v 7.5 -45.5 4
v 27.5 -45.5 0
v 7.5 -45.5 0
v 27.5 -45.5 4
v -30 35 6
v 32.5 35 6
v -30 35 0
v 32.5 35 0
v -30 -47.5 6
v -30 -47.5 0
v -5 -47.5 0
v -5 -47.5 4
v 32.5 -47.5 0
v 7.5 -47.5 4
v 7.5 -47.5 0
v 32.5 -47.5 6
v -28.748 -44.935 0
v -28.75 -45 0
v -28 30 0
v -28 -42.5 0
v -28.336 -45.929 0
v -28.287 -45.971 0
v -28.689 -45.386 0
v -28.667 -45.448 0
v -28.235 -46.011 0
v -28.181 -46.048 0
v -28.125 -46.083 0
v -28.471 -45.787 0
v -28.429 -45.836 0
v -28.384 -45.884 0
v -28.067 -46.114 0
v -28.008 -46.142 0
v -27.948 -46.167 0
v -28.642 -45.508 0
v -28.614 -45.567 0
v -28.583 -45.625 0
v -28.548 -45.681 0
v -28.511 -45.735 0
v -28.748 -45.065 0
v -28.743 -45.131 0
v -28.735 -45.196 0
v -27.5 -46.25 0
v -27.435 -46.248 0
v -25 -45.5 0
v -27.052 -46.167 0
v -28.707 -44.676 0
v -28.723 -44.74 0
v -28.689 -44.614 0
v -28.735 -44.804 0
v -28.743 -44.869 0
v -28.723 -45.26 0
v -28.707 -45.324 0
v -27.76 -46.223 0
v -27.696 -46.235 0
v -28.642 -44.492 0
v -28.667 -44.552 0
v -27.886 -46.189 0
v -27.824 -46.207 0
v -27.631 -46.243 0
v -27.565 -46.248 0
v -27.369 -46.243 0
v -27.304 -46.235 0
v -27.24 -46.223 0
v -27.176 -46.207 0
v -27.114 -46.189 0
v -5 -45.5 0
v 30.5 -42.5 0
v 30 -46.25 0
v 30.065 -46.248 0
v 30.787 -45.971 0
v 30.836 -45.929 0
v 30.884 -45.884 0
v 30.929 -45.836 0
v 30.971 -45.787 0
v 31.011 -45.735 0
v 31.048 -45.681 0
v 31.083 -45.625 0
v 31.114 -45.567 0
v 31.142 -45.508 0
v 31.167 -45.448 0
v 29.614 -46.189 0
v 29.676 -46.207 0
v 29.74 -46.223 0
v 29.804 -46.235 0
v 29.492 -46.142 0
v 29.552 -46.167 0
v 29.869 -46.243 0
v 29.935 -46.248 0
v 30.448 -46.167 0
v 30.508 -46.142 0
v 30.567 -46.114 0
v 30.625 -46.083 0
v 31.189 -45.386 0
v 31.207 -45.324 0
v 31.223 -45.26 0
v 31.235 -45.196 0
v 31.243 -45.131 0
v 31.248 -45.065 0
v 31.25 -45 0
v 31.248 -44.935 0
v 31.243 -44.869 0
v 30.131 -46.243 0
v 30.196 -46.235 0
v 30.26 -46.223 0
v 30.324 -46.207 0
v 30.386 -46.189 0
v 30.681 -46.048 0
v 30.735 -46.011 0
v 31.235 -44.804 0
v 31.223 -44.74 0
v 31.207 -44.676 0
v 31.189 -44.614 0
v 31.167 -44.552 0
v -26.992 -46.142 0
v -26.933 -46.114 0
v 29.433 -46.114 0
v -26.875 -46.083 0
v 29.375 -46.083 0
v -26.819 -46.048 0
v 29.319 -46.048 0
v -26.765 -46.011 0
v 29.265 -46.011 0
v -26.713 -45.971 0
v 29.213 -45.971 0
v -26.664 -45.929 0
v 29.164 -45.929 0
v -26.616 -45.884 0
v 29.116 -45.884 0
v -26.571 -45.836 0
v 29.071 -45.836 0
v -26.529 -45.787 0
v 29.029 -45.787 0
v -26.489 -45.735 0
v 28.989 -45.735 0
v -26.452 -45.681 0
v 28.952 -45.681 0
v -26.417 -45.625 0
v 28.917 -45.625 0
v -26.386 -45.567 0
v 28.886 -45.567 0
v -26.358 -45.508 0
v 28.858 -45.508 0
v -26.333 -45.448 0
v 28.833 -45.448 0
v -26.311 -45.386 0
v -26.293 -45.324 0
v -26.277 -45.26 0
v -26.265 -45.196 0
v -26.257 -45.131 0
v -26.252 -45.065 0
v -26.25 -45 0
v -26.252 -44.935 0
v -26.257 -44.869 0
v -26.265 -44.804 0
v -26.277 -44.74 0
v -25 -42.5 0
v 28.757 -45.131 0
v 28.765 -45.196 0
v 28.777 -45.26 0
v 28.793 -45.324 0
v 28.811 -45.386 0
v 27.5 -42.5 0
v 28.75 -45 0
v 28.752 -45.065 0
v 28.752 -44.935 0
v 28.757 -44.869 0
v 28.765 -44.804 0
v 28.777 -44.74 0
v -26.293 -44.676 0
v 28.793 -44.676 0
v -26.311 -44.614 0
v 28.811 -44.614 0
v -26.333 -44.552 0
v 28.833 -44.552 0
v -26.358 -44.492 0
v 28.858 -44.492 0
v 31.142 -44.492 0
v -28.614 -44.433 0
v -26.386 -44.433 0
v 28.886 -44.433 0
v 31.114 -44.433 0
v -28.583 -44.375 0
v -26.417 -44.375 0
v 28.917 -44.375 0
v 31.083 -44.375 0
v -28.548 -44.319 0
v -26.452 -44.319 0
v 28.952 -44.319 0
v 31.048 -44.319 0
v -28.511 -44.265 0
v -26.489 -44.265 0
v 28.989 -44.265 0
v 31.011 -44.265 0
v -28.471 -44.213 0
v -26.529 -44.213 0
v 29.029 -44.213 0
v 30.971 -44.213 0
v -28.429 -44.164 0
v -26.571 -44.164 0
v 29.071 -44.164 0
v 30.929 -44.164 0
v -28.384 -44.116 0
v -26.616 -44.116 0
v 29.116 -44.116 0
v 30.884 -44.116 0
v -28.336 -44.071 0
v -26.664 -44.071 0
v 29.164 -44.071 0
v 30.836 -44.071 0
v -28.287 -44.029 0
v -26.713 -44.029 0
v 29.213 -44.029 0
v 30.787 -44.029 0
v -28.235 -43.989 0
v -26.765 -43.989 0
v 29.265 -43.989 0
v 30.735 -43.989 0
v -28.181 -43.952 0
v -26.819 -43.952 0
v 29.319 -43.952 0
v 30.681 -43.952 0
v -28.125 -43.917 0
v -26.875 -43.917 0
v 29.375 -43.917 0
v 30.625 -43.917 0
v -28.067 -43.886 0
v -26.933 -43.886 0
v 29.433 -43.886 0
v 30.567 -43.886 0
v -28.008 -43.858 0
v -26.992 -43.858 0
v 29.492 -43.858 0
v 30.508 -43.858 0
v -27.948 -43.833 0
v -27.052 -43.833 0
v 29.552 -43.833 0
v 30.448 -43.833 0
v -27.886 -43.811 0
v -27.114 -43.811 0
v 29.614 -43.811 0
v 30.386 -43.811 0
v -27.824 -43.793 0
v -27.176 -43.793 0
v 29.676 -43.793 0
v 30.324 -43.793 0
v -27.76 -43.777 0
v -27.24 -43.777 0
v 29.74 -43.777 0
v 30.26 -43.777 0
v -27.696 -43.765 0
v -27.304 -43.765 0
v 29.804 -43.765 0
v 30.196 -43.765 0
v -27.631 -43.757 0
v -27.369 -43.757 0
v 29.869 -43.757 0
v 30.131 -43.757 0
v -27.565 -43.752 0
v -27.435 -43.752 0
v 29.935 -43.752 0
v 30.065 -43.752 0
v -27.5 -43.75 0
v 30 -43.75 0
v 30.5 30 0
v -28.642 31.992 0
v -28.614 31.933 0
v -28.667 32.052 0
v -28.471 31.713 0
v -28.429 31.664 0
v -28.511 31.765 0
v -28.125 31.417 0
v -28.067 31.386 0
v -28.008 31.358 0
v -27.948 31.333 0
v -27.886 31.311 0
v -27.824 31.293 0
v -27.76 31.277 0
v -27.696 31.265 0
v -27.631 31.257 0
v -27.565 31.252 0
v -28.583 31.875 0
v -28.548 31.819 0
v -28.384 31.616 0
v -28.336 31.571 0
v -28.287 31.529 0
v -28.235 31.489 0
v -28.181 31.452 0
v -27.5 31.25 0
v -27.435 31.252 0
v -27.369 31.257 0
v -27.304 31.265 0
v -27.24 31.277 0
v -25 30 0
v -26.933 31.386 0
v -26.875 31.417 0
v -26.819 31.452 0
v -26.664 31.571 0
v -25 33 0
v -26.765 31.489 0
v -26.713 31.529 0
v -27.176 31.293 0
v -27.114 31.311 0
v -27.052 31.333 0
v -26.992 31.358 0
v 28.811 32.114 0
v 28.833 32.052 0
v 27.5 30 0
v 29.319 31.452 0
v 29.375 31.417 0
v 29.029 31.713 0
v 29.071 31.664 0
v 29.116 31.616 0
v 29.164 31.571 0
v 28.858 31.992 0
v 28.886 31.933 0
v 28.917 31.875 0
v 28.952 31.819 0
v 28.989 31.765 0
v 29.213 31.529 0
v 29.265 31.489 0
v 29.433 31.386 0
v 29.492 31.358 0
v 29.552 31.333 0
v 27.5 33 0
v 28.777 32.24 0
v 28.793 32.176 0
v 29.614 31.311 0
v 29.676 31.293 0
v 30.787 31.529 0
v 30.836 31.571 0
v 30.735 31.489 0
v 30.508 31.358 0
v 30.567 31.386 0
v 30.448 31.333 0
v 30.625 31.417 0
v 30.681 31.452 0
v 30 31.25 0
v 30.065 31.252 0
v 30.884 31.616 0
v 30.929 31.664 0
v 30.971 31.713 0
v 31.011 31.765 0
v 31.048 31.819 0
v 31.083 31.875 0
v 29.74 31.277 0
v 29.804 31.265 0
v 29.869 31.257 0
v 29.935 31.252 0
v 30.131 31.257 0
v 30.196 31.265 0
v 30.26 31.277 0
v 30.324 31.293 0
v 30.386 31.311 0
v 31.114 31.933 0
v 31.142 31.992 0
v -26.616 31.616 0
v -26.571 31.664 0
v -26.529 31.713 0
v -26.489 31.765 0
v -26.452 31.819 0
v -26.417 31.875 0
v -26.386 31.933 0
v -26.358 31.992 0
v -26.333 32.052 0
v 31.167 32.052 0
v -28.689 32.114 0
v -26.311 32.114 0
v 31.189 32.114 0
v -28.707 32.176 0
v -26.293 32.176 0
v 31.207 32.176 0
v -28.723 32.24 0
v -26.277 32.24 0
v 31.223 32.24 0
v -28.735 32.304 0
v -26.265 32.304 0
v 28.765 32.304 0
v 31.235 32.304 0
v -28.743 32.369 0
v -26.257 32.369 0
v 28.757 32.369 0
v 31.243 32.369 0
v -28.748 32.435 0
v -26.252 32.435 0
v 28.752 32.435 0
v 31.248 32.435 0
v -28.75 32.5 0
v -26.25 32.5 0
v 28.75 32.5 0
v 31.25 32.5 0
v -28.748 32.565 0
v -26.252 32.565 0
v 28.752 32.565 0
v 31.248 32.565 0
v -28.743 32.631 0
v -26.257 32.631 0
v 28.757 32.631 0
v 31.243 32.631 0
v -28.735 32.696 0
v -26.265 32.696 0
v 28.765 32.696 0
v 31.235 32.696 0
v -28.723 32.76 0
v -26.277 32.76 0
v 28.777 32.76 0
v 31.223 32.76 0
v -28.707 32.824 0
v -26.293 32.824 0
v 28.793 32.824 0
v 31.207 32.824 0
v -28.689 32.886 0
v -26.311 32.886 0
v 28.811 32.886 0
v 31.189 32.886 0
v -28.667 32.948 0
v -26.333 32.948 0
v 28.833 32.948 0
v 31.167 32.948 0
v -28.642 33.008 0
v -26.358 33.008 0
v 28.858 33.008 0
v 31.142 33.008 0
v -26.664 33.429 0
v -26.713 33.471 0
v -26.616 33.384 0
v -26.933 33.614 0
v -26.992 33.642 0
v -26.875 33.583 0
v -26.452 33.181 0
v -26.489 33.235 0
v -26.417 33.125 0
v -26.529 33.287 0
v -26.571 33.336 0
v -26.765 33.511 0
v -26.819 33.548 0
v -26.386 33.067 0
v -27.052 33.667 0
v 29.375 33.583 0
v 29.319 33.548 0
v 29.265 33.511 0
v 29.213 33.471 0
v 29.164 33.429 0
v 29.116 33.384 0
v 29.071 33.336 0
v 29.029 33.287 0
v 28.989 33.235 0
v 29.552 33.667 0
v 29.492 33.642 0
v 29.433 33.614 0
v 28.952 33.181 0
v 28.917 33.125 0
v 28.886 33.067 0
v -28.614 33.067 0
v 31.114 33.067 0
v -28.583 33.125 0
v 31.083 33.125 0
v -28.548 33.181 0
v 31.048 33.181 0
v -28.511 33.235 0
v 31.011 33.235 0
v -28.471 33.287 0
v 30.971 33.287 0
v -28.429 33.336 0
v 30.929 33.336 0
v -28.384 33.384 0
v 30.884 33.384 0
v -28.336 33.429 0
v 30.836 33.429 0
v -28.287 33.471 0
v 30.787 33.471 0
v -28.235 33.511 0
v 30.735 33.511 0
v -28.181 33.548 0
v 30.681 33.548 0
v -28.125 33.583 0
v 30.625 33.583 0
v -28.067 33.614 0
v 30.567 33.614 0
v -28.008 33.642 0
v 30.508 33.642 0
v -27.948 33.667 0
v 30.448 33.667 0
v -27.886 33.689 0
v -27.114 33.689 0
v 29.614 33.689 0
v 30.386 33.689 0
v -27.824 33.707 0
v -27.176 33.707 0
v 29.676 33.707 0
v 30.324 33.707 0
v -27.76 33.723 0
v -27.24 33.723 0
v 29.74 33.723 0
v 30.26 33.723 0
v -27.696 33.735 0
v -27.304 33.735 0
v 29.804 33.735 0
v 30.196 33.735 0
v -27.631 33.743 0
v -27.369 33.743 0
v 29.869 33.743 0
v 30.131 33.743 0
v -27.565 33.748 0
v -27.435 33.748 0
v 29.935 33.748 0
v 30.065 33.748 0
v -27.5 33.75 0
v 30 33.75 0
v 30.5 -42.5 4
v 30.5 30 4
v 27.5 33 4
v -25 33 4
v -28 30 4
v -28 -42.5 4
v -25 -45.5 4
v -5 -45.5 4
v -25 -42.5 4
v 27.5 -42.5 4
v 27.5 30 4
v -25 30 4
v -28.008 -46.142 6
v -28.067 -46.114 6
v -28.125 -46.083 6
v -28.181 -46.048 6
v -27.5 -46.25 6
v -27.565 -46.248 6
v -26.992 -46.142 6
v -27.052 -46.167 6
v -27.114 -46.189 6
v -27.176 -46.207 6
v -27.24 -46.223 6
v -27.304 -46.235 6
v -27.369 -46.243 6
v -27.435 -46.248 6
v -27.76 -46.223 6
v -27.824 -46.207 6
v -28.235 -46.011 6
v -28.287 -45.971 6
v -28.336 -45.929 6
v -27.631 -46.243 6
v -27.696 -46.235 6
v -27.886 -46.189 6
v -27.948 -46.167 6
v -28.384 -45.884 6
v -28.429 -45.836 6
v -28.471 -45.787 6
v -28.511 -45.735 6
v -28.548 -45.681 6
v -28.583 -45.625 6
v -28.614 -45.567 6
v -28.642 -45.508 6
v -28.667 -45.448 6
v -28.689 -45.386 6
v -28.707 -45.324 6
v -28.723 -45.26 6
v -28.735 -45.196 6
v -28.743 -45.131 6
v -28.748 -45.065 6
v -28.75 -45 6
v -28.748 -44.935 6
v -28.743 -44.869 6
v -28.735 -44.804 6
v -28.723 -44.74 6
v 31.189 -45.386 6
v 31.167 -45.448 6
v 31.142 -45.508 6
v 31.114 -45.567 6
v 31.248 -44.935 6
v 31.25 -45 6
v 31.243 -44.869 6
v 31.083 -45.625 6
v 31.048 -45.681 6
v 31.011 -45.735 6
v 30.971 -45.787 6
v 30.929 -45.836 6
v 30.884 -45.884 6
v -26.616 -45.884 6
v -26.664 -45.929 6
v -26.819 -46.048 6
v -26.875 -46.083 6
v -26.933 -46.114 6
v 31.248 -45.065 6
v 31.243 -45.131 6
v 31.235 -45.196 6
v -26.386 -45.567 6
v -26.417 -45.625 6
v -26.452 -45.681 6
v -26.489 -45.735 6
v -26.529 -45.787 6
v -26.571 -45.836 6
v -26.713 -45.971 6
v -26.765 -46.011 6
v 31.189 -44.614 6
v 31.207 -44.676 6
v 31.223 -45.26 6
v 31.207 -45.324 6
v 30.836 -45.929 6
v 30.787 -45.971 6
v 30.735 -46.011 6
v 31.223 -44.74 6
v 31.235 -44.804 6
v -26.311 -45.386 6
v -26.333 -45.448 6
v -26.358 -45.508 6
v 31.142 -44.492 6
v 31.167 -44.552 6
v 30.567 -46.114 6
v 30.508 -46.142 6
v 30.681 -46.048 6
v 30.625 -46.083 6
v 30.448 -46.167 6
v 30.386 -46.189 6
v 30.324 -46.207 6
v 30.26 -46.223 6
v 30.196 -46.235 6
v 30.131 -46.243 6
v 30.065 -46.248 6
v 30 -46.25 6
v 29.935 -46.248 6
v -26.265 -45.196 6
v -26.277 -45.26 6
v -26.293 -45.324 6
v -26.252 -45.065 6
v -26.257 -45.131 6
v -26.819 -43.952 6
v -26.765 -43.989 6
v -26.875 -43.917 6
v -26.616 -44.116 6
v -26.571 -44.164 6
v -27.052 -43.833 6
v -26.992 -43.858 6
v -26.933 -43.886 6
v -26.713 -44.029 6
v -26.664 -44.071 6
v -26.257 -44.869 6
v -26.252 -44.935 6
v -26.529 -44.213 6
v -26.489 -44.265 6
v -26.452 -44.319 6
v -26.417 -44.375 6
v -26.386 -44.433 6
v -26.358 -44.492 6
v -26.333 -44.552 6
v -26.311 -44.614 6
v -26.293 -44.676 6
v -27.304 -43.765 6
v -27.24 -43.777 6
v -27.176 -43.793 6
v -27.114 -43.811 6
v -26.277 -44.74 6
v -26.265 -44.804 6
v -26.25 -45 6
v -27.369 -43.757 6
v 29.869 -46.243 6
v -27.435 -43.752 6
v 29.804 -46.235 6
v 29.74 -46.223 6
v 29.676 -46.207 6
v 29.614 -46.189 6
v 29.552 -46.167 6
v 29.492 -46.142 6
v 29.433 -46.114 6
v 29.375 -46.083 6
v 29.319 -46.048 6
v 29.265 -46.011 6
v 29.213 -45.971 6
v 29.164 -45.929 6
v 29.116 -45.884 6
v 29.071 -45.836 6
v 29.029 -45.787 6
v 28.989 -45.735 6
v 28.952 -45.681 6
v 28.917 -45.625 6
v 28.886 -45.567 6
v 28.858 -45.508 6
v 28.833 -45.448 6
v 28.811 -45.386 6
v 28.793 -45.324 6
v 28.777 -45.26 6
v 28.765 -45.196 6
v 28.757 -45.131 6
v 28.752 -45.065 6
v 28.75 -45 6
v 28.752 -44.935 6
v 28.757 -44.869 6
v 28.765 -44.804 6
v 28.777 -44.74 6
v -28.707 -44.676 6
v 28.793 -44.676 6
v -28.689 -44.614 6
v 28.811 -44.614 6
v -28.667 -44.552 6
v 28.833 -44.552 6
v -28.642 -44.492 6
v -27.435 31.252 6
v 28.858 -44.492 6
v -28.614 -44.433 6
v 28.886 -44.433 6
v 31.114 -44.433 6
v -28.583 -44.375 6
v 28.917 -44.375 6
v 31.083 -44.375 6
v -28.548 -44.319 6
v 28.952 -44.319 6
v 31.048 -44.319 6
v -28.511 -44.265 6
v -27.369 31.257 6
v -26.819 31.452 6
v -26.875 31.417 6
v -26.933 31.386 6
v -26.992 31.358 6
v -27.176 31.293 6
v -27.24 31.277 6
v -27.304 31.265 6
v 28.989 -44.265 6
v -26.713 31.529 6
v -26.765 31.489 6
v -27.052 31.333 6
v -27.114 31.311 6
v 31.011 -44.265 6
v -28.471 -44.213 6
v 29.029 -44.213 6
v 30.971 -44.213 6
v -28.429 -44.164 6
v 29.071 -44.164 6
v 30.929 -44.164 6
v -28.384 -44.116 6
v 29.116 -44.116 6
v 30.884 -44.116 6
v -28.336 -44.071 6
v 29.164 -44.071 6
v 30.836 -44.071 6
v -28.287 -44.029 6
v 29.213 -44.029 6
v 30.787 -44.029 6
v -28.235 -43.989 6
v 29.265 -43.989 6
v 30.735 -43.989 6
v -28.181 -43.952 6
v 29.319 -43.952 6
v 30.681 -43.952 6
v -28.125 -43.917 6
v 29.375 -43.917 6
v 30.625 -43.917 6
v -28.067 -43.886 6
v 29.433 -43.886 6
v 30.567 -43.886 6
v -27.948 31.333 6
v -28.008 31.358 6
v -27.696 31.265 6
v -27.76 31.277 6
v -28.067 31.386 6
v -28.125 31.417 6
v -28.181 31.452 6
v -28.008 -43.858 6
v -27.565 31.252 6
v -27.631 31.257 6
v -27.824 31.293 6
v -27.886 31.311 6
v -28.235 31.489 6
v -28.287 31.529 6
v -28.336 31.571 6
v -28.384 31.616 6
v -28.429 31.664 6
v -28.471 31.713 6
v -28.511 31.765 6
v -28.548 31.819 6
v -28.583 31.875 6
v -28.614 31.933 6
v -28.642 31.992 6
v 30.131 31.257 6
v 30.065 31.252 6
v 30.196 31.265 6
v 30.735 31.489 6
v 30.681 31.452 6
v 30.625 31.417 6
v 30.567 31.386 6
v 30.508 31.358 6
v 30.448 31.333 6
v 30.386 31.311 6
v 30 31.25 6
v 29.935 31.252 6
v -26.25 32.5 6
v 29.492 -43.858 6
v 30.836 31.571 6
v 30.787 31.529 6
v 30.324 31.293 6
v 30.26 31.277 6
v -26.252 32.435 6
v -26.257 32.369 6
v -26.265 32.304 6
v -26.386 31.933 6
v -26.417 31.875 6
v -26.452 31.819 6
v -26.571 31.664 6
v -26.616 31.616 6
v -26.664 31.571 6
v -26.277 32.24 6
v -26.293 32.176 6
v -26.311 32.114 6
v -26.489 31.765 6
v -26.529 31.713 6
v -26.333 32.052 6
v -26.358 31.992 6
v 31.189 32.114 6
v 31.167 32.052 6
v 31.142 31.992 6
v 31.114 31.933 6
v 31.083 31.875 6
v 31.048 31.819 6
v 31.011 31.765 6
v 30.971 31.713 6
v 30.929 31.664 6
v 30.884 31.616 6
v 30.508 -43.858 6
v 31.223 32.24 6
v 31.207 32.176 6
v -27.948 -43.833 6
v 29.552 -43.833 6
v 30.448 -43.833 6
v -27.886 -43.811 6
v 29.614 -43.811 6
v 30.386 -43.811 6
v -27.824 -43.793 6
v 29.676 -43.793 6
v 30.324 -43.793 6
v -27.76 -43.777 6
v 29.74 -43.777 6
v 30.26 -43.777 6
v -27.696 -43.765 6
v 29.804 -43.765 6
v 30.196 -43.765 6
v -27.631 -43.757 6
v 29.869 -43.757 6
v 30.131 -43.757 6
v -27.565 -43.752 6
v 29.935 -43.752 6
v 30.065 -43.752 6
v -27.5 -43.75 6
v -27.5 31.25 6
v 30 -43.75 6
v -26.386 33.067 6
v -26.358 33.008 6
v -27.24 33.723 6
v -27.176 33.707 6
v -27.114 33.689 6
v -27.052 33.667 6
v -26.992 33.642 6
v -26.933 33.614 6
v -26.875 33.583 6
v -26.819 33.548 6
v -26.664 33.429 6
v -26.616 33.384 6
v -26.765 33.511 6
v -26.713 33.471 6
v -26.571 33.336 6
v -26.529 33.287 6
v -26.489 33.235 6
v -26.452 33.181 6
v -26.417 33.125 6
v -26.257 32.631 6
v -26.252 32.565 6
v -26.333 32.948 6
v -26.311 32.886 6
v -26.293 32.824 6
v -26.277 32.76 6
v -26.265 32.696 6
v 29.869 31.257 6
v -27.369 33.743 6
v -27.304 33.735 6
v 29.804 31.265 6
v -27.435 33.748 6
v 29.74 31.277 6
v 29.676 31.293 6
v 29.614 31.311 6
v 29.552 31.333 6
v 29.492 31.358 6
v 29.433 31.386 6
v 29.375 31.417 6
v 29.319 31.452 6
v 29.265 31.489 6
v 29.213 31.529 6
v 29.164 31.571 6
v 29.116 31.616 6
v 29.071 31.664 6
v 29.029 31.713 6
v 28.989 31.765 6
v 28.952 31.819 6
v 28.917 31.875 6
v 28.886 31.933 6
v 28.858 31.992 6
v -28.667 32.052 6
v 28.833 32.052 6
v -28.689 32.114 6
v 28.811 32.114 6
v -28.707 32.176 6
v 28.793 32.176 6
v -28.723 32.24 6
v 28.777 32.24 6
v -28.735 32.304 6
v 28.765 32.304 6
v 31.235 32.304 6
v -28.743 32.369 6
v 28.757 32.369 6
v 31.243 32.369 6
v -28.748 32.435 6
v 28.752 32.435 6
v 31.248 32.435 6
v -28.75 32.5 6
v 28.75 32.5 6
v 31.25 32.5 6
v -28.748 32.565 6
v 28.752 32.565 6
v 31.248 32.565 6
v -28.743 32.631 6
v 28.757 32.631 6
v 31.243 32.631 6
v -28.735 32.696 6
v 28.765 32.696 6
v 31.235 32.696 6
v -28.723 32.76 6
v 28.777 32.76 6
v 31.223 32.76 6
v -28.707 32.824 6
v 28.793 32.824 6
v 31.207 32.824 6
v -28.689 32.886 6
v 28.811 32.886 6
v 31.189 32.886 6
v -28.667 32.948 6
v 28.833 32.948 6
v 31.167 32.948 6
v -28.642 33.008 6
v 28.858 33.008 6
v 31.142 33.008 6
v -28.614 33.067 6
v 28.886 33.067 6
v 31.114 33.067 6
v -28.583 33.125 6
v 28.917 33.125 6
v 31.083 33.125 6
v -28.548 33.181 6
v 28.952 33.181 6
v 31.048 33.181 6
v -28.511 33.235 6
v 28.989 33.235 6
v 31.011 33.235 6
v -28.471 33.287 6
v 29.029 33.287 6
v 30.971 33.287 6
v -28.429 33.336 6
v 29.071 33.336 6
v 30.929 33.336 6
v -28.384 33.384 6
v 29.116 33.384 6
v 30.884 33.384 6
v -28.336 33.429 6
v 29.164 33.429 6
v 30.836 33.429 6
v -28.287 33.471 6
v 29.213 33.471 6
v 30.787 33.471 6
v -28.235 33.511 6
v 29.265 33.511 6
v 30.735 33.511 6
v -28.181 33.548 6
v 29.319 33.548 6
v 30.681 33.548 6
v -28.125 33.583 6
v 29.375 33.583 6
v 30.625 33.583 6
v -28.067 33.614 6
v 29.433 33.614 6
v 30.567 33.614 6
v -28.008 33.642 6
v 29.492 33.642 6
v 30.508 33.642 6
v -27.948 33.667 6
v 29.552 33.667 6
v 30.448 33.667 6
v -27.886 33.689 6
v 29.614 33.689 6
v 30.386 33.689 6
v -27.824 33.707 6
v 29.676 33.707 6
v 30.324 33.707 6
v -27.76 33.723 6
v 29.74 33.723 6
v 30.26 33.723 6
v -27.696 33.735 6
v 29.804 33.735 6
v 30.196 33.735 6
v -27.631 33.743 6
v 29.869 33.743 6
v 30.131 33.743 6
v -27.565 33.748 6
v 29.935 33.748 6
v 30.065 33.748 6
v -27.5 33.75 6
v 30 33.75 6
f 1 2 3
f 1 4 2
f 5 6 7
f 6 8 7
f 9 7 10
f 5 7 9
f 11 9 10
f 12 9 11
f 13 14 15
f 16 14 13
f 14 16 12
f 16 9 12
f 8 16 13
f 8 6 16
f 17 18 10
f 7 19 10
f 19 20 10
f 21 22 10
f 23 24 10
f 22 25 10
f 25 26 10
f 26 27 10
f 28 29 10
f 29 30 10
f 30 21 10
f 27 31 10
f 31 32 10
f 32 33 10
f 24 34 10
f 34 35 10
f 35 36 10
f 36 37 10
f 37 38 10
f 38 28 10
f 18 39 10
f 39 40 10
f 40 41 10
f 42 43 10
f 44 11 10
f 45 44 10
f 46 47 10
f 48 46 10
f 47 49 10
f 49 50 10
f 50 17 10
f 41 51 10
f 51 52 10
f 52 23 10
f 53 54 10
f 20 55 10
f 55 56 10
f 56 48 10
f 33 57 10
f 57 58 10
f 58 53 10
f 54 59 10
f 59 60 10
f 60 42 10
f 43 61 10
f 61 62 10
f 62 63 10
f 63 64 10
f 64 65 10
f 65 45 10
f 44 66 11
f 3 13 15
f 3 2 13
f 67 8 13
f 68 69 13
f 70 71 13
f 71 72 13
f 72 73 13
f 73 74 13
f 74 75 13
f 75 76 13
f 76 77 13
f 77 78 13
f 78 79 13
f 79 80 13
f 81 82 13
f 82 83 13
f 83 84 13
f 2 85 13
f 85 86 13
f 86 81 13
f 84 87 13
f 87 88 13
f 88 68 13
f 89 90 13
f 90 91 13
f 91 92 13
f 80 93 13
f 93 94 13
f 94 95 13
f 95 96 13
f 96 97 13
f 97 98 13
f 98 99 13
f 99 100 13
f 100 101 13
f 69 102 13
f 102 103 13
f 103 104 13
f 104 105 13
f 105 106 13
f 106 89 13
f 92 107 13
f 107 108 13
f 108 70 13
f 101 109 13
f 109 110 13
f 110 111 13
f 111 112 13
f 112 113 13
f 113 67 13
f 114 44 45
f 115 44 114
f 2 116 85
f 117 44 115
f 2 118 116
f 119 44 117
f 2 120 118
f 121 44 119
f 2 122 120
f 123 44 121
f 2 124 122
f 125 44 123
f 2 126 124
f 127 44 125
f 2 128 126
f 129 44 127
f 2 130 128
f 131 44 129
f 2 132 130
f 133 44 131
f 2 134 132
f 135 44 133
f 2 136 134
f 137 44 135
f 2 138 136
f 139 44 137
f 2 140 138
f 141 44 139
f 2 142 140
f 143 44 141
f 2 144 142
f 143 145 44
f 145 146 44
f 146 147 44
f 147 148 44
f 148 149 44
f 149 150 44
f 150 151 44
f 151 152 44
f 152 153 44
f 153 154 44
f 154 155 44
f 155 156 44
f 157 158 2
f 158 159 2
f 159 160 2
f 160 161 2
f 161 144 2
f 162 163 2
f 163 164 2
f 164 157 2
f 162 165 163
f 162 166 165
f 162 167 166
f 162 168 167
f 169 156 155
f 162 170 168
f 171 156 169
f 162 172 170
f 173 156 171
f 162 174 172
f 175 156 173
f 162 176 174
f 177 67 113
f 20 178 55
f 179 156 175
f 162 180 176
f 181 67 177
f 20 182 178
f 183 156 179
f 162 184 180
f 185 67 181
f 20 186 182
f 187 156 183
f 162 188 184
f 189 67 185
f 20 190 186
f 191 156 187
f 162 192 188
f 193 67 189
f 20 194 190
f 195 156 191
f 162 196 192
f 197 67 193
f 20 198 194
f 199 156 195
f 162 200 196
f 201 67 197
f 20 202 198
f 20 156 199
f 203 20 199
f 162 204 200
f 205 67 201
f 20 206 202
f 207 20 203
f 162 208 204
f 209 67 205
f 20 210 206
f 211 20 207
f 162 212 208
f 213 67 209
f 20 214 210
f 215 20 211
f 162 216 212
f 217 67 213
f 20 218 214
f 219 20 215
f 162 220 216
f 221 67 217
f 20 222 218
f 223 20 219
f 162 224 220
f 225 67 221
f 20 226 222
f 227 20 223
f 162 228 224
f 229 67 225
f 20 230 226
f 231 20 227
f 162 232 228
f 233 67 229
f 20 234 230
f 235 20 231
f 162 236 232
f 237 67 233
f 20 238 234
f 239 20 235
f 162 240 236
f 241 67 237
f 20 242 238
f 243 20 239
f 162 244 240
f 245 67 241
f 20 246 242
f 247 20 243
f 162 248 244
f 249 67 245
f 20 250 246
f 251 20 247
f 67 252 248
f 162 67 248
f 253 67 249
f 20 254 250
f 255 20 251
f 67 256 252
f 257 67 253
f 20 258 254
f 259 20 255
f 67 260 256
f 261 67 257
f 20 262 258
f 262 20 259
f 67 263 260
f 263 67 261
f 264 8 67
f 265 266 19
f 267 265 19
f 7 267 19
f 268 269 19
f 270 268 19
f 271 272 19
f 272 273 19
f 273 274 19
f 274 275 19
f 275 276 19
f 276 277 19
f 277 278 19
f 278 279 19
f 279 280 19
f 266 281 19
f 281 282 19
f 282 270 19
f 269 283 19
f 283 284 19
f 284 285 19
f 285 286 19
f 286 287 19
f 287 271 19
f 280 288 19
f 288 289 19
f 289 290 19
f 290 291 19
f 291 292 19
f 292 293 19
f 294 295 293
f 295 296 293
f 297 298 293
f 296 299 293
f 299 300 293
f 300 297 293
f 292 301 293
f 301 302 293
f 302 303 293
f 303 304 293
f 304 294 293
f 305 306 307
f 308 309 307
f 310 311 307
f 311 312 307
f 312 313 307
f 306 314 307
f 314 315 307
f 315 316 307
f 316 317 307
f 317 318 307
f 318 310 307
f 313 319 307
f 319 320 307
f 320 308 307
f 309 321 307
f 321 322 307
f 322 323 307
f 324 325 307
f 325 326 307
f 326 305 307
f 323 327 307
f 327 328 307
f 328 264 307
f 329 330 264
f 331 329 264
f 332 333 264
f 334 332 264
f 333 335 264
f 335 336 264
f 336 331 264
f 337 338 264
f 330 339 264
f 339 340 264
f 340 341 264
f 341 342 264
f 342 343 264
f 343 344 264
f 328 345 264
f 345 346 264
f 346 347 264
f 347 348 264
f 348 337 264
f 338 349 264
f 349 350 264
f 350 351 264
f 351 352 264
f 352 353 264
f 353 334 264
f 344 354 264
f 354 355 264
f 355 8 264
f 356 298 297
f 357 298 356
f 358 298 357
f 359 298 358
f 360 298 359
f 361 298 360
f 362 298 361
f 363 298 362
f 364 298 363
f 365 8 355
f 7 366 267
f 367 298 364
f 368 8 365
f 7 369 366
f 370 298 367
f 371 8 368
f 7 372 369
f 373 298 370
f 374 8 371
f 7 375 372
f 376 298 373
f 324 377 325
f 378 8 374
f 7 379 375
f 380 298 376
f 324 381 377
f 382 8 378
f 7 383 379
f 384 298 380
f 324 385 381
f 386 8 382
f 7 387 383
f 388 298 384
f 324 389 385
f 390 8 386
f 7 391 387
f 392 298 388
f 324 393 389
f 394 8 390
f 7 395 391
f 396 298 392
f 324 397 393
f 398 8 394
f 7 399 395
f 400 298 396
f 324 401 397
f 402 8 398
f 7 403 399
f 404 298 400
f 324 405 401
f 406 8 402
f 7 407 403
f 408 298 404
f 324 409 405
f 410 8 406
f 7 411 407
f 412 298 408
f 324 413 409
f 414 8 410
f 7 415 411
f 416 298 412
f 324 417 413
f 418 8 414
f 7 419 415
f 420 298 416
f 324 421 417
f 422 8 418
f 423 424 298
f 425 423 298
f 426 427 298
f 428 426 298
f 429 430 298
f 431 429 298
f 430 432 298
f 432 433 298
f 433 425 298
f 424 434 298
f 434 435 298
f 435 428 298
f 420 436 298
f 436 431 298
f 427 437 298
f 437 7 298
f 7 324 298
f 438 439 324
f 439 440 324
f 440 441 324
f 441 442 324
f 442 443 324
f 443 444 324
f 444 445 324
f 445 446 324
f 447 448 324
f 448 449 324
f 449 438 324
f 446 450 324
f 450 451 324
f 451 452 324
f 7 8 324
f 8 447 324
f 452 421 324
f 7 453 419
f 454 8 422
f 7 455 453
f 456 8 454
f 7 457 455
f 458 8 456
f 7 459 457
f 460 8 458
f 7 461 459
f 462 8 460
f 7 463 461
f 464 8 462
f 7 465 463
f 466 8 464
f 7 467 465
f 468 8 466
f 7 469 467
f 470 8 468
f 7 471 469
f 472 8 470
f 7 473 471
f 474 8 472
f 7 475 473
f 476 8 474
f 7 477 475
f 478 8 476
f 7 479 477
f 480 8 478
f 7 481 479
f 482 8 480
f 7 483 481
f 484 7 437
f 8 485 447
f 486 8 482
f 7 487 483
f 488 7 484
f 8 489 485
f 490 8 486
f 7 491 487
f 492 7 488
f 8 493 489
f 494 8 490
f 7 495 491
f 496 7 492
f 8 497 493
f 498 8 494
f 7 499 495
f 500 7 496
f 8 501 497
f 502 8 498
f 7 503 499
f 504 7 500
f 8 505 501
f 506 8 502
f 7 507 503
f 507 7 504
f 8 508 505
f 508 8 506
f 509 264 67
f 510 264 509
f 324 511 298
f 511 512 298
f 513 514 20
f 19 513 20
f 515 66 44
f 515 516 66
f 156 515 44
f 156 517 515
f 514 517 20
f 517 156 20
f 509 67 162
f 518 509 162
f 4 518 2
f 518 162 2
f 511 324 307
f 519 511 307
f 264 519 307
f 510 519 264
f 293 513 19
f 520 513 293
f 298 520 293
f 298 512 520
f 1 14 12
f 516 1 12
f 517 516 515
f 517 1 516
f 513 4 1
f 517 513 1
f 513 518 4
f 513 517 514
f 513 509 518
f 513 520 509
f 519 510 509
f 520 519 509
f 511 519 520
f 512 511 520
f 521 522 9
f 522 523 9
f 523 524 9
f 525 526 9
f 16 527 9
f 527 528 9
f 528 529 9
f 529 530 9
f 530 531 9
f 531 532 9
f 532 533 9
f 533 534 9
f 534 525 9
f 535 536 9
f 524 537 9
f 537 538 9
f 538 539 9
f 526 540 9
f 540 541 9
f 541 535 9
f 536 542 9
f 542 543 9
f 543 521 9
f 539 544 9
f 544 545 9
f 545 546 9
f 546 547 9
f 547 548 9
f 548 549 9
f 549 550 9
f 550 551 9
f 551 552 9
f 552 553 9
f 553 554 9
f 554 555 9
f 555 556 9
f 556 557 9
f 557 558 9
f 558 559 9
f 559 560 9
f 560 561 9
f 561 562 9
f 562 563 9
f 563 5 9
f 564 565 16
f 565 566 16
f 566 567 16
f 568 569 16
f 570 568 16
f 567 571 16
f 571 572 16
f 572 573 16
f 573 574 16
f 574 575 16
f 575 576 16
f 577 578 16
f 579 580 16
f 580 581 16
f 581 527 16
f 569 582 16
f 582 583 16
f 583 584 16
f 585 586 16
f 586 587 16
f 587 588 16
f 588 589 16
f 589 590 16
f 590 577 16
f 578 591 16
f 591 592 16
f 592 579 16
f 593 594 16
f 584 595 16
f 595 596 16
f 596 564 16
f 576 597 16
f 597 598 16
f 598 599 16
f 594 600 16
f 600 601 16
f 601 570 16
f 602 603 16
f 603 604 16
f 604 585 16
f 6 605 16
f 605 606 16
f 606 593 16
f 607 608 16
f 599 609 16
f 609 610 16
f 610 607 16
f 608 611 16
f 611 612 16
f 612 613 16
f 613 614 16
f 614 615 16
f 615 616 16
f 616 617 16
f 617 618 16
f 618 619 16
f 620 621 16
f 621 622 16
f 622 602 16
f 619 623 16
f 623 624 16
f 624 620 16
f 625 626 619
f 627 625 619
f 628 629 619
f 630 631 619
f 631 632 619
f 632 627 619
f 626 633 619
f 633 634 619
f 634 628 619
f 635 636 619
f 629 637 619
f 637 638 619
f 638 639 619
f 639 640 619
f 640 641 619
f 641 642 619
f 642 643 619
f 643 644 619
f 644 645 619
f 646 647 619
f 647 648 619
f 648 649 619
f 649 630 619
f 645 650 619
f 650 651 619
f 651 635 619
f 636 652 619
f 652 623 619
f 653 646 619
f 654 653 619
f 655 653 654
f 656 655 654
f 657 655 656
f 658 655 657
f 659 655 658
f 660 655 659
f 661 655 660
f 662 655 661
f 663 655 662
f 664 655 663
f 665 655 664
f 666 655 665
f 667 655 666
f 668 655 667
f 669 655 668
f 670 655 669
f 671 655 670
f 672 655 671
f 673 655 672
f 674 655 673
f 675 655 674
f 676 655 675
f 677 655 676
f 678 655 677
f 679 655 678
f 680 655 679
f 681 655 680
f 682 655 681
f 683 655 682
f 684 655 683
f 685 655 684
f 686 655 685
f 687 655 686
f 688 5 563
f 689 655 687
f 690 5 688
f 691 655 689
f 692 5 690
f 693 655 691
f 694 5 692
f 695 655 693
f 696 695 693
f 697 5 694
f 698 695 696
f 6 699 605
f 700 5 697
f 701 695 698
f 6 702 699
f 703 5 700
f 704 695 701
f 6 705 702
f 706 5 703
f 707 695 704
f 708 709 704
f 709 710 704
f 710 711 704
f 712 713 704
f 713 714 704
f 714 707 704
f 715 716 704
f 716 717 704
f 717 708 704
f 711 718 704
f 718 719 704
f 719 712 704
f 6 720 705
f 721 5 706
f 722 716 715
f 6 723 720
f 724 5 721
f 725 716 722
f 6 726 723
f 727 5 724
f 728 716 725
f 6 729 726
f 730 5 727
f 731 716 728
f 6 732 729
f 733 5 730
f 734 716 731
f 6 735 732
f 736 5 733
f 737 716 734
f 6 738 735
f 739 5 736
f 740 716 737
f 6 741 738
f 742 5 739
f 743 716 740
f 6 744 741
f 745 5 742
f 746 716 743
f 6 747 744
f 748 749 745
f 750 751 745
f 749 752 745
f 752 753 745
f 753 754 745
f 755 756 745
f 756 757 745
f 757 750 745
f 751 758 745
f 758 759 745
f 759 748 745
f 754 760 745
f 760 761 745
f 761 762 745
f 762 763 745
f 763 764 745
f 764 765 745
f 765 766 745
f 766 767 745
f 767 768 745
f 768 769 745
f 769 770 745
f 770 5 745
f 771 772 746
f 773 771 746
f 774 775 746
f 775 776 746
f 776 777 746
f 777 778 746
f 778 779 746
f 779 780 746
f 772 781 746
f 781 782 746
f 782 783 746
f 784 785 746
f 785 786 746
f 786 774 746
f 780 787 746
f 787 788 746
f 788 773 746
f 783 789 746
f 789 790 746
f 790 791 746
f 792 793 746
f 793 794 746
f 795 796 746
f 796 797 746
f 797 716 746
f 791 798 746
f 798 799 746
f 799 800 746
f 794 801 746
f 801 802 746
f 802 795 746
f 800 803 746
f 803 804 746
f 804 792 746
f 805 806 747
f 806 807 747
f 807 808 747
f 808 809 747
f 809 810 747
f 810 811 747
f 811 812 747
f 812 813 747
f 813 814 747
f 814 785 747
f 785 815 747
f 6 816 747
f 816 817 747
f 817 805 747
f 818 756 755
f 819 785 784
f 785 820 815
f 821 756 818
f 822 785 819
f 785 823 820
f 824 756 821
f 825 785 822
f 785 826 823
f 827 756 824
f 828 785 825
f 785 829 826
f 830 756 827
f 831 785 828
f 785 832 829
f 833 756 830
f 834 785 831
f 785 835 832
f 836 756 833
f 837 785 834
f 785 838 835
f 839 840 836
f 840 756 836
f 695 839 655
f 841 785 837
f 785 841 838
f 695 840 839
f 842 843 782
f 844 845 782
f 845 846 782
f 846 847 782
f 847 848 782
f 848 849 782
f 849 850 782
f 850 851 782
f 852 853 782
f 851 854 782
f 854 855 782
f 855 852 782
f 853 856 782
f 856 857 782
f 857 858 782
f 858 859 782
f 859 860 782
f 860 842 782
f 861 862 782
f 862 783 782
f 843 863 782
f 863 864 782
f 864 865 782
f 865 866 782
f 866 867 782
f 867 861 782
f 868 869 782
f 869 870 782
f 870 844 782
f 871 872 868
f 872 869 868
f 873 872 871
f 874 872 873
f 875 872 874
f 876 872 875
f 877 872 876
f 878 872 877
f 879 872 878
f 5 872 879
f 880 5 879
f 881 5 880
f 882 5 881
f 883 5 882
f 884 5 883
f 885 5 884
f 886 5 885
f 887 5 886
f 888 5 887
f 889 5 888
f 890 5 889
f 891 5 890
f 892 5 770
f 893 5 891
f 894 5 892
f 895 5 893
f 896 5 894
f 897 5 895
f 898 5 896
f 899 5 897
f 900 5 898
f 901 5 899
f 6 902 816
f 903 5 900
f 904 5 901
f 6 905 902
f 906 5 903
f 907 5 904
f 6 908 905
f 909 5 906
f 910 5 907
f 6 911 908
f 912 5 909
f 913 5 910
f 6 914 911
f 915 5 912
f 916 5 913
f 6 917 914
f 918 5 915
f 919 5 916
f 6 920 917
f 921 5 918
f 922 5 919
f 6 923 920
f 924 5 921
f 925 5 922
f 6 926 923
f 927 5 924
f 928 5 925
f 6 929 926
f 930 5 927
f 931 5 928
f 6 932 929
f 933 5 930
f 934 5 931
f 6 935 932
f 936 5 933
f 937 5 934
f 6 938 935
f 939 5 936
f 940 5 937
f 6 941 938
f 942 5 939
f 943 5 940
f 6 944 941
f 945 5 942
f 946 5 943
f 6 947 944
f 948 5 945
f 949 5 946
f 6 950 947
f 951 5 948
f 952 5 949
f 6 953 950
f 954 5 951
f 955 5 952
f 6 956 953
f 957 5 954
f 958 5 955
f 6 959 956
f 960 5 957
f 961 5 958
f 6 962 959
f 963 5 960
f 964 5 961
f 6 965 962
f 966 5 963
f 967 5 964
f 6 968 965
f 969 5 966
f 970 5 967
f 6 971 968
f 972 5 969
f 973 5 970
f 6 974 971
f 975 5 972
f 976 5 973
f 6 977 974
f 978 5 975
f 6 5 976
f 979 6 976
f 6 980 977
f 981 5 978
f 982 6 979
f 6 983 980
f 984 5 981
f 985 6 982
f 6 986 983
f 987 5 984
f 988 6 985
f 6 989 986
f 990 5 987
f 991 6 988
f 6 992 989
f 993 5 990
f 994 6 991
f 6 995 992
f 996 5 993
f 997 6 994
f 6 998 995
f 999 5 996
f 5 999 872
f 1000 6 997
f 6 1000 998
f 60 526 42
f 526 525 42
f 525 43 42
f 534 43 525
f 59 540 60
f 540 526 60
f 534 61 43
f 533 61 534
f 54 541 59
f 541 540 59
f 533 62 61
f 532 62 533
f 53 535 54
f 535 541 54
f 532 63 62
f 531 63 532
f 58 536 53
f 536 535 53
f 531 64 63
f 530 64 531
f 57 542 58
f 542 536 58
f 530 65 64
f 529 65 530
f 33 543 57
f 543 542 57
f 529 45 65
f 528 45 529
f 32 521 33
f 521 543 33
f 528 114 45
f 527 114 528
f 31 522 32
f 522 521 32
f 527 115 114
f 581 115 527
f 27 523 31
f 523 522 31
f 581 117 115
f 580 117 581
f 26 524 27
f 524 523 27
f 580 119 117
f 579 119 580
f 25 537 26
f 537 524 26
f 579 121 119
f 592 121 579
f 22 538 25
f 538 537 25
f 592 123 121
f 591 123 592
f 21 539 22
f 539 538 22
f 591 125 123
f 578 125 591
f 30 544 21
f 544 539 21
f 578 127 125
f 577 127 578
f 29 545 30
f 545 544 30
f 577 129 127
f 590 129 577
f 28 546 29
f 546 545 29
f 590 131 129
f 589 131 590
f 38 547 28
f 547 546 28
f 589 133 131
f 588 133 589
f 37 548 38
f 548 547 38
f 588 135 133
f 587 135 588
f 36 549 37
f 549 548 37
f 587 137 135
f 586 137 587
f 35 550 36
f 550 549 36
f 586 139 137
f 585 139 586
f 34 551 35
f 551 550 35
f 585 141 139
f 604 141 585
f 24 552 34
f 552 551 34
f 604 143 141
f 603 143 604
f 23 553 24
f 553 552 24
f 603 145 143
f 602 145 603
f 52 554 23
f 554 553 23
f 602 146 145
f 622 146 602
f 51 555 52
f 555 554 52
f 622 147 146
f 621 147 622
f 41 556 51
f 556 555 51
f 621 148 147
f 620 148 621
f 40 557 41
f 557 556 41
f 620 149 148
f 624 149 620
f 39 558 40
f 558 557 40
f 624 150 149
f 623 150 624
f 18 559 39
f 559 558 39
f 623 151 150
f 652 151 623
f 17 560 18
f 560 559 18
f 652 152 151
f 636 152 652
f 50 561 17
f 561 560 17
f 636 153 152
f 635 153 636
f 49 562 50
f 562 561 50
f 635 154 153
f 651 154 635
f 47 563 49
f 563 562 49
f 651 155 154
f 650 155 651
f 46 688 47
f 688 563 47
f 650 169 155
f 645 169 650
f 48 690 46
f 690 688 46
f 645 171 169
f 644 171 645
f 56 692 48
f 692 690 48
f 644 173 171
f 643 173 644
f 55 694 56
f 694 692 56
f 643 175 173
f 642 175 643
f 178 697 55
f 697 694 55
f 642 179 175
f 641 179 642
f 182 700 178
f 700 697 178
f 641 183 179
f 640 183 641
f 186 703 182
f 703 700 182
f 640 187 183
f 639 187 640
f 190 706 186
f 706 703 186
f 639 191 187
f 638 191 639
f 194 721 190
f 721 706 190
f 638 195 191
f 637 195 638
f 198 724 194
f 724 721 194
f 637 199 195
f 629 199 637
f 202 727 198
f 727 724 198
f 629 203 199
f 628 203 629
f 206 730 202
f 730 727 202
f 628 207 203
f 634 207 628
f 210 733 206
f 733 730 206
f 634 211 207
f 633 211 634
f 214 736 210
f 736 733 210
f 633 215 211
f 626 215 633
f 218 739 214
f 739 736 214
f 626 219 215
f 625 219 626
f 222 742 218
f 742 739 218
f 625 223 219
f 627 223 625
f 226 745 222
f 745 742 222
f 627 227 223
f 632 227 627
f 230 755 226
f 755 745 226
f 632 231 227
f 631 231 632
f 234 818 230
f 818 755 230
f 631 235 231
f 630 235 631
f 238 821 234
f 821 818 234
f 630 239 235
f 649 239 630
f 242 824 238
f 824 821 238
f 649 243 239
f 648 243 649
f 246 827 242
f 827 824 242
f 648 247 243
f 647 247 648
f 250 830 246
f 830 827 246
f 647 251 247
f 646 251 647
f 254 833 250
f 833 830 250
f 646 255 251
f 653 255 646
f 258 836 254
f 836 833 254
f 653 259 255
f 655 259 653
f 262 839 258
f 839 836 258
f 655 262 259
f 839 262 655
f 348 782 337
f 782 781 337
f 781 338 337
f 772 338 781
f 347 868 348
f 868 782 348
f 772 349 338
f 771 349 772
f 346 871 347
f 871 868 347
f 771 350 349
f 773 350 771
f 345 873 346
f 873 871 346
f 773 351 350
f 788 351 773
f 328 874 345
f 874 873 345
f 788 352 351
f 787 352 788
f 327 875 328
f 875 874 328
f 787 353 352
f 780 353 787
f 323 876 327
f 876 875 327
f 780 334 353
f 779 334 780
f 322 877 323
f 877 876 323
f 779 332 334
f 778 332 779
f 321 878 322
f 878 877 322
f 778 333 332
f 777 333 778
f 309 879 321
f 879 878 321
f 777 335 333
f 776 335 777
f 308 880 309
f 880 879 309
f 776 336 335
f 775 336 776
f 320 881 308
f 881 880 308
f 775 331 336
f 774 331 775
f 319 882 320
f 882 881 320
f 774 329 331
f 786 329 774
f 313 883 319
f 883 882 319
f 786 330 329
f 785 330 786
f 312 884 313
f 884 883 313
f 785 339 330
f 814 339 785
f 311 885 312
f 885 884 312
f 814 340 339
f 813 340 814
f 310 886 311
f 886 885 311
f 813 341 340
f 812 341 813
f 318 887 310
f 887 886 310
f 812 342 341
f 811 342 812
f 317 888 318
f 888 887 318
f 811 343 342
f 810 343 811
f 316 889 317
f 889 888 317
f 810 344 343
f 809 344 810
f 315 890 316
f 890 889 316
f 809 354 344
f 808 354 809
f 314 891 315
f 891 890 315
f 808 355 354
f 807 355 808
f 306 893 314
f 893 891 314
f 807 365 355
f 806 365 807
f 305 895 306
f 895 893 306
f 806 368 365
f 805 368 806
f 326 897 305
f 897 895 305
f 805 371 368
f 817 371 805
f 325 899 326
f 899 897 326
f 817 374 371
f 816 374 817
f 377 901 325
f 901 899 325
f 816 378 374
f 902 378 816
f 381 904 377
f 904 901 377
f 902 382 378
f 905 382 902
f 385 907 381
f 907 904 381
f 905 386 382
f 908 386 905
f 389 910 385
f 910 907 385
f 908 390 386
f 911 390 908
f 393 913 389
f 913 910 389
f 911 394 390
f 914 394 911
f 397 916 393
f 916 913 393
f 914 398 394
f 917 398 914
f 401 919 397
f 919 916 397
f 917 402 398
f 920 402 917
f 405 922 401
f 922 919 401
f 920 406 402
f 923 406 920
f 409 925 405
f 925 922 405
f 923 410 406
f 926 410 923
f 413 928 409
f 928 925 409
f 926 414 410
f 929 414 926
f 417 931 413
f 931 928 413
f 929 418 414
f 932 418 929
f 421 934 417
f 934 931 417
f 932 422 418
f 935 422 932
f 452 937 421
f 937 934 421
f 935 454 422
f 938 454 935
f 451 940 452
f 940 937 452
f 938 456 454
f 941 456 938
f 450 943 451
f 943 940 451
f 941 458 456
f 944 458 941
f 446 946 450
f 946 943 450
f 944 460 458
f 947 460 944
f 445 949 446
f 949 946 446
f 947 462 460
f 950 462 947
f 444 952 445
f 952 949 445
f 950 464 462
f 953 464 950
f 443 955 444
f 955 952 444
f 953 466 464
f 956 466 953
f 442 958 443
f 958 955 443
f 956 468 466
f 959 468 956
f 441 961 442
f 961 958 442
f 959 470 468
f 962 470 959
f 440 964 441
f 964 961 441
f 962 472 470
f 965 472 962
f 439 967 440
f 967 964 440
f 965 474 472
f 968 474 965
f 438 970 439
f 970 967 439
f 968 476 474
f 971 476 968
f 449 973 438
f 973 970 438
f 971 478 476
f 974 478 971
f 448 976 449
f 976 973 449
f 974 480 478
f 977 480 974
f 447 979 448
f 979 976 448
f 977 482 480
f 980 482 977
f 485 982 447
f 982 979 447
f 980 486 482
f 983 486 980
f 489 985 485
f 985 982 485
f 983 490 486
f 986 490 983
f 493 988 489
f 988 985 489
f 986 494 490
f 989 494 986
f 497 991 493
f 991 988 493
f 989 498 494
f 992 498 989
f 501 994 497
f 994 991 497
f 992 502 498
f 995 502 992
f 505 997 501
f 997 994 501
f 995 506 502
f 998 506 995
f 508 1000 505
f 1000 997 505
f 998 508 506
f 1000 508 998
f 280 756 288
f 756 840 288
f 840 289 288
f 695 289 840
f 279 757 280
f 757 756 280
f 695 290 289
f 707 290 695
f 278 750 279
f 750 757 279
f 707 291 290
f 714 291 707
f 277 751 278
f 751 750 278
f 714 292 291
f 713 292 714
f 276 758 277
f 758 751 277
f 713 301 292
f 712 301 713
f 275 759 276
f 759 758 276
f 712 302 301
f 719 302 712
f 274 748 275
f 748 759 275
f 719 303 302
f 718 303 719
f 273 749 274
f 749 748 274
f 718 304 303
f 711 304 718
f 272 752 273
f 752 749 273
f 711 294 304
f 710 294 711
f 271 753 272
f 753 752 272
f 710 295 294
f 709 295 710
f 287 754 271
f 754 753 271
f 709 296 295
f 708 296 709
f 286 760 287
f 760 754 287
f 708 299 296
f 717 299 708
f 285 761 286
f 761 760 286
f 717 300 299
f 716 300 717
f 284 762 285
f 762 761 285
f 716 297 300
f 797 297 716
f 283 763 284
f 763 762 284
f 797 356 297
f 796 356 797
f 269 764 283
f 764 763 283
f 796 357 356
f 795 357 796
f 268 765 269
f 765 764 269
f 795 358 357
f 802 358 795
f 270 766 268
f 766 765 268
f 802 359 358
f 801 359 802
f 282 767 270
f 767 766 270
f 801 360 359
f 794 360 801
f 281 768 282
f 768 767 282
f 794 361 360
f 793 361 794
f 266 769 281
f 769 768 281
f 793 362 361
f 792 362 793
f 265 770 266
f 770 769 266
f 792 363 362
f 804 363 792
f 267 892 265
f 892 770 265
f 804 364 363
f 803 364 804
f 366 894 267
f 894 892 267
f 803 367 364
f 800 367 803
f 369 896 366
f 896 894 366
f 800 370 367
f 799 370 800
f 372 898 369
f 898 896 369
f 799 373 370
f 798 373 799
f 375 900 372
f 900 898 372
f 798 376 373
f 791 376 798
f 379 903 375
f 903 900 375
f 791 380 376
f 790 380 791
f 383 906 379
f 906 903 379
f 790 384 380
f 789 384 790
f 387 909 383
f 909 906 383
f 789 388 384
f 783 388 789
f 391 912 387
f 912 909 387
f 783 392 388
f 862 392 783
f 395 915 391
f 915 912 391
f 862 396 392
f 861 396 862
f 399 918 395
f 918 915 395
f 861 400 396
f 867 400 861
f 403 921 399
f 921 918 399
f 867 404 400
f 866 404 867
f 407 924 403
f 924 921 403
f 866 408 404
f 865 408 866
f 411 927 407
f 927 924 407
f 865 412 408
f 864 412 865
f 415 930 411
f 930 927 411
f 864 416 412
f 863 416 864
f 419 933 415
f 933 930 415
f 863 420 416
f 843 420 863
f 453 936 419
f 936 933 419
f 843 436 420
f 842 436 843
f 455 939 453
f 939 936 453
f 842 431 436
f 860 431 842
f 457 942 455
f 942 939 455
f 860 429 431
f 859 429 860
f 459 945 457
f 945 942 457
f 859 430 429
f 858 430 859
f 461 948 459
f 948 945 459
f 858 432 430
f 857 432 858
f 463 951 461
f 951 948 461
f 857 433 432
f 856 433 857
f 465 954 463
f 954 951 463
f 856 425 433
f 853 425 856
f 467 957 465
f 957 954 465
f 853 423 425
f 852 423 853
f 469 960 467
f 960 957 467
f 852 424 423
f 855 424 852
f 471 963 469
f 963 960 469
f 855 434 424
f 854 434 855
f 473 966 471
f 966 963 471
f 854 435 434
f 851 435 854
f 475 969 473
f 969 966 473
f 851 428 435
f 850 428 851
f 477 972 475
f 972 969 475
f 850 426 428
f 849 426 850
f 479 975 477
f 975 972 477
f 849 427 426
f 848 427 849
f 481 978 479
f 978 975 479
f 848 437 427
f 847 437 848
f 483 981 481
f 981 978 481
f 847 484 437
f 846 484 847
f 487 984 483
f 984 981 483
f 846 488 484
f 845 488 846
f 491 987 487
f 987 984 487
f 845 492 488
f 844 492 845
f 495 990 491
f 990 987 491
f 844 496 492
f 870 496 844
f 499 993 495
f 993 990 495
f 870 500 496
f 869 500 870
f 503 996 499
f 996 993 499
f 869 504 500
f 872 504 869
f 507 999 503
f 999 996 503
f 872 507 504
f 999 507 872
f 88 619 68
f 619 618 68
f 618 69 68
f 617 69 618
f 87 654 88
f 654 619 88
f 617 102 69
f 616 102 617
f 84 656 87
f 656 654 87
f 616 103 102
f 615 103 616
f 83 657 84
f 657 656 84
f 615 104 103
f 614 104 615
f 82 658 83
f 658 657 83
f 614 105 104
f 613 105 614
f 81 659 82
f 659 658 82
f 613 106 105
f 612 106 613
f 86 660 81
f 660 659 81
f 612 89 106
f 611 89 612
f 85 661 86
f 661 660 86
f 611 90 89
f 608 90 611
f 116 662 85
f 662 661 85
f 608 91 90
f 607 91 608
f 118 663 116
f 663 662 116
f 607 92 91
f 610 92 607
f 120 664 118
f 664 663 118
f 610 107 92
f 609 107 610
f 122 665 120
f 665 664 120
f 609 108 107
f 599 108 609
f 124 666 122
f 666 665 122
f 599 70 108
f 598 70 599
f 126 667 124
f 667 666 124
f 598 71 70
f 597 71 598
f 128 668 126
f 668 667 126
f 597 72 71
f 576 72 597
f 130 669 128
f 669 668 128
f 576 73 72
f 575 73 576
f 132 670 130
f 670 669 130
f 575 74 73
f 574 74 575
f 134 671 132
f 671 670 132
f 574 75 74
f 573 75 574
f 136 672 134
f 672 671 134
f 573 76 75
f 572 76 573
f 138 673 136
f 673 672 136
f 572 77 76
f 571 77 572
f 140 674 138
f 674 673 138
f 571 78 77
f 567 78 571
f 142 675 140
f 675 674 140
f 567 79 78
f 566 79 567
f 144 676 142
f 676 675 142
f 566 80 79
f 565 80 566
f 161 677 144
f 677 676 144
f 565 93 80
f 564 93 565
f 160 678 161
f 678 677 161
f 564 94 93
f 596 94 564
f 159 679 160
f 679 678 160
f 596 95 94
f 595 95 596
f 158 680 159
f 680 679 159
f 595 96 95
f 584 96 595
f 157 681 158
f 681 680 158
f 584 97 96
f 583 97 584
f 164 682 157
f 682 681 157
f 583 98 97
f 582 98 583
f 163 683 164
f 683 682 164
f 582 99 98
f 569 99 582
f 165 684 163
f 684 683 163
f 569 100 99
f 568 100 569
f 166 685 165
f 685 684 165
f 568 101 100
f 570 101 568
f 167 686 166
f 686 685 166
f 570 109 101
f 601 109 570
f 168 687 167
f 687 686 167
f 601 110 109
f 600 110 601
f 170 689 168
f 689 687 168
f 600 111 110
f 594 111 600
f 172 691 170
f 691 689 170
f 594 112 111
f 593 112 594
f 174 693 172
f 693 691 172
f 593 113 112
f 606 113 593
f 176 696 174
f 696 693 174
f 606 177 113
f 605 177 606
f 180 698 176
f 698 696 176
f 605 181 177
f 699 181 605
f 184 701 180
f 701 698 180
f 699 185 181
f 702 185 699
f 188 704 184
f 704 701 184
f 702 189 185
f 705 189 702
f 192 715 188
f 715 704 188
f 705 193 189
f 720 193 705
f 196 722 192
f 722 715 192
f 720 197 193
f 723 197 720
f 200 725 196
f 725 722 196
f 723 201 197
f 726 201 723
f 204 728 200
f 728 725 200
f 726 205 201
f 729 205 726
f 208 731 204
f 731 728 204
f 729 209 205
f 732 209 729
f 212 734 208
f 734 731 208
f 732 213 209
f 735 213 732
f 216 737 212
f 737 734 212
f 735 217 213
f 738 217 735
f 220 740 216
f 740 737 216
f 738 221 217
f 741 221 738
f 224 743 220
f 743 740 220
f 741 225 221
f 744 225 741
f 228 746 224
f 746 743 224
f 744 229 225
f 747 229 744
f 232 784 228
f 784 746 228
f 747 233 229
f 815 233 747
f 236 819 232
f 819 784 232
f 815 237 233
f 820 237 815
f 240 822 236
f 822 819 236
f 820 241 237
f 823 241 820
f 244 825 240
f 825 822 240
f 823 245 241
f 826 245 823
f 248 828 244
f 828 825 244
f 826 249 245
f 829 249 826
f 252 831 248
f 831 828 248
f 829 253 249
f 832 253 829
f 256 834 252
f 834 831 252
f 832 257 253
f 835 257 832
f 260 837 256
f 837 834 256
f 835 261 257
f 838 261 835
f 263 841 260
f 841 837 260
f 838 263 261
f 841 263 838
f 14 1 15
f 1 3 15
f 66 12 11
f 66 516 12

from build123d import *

# Parameters (mm, degrees)
SKIZZE1_W                       = 62.5
SKIZZE1_H                       = 82.5
AUFSATZ_LINEAR_AUSTRAGEN1_DEPTH = 4
AUFSATZ_LINEAR_START            = -4
SKIZZE2_W                       = 5
SKIZZE2_H                       = 5
SKIZZE2_R                       = 1.25
AUFSATZ_LINEAR_AUSTRAGEN2_DEPTH = 4
SKIZZE3_W                       = 62.5
SKIZZE3_H                       = 82.5
AUFSATZ_LINEAR_AUSTRAGEN3_DEPTH = 2
SKIZZE2_2_R                     = 1.25
SCHNITT_LINEAR_AUSTRAGEN1_DEPTH = 5
SCHNITT_LINEAR_START            = -2
SKIZZE4_R                       = 1.25
SCHNITT_LINEAR_AUSTRAGEN2_DEPTH = 2
SKIZZE5_W                       = 12.5
SKIZZE5_H                       = 2
SCHNITT_LINEAR_AUSTRAGEN3_DEPTH = 4


with BuildPart() as part:
    # Skizze1 → Aufsatz-Linear austragen1 (new body)
    with BuildSketch(Plane.XY):
        with Locations((1.25, -6.25)):
            Rectangle(SKIZZE1_W, SKIZZE1_H)
        with BuildLine():
            ThreePointArc((-28, 31.354356), (-26.616117, 31.616117), (-26.354356, 33))
            Line((-26.354356, 33), (28.854356, 33))
            ThreePointArc((28.854356, 33), (29.116117, 31.616117), (30.5, 31.354356))
            Line((30.5, 31.354356), (30.5, -43.854356))
            ThreePointArc((30.5, -43.854356), (29.116117, -44.116117), (28.854356, -45.5))
            Line((28.854356, -45.5), (-26.354356, -45.5))
            ThreePointArc((-26.354356, -45.5), (-26.616117, -44.116117), (-28, -43.854356))
            Line((-28, -43.854356), (-28, 31.354356))
        make_face(mode=Mode.SUBTRACT)
    extrude(amount=AUFSATZ_LINEAR_AUSTRAGEN1_DEPTH)

    # Skizze2 → Aufsatz-Linear austragen2 (add)
    # profile 1 of 4: a face of its own
    with BuildSketch(Plane.XY.offset(4).offset(AUFSATZ_LINEAR_START)):
        with Locations((-27.5, -45)):
            Rectangle(SKIZZE2_W, SKIZZE2_H)
        with Locations((-27.5, -45)):
            Circle(SKIZZE2_R, mode=Mode.SUBTRACT)
    # profile 2 of 4: a face of its own
    with BuildSketch(Plane.XY.offset(4).offset(AUFSATZ_LINEAR_START)):
        with Locations((30, -45)):
            Rectangle(SKIZZE2_W, SKIZZE2_H)
        with Locations((30, -45)):
            Circle(SKIZZE2_R, mode=Mode.SUBTRACT)
    # profile 3 of 4: a face of its own
    with BuildSketch(Plane.XY.offset(4).offset(AUFSATZ_LINEAR_START)):
        with Locations((30, 32.5)):
            Rectangle(SKIZZE2_W, SKIZZE2_H)
        with Locations((30, 32.5)):
            Circle(SKIZZE2_R, mode=Mode.SUBTRACT)
    # profile 4 of 4: a face of its own
    with BuildSketch(Plane.XY.offset(4).offset(AUFSATZ_LINEAR_START)):
        with Locations((-27.5, 32.5)):
            Rectangle(SKIZZE2_W, SKIZZE2_H)
        with Locations((-27.5, 32.5)):
            Circle(SKIZZE2_R, mode=Mode.SUBTRACT)
    extrude(amount=AUFSATZ_LINEAR_AUSTRAGEN2_DEPTH)

    # Skizze3 → Aufsatz-Linear austragen3 (add)
    with BuildSketch(Plane.XY.offset(4)):
        with Locations((1.25, -6.25)):
            Rectangle(SKIZZE3_W, SKIZZE3_H)
    extrude(amount=AUFSATZ_LINEAR_AUSTRAGEN3_DEPTH)

    # Skizze2<2> → Schnitt-Linear austragen1 (cut)
    with BuildSketch(Plane.XY.offset(4)):
        with BuildLine():
            ThreePointArc((-26.354356, -45.5), (-26.276367, -45.255387), (-26.25, -45))
            ThreePointArc((-26.25, -45), (-26.815347, -43.954175), (-28, -43.854356))
            ThreePointArc((-28, -43.854356), (-28.383883, -45.883883), (-26.354356, -45.5))
        make_face()
        with BuildLine():
            ThreePointArc((30.5, 31.354356), (31.045825, 31.815347), (31.25, 32.5))
            ThreePointArc((31.25, 32.5), (30.255387, 33.723633), (28.854356, 33))
            ThreePointArc((28.854356, 33), (29.116117, 31.616117), (30.5, 31.354356))
        make_face()
        with BuildLine():
            ThreePointArc((-28, 31.354356), (-26.815347, 31.454175), (-26.25, 32.5))
            ThreePointArc((-26.25, 32.5), (-26.276367, 32.755387), (-26.354356, 33))
            ThreePointArc((-26.354356, 33), (-28.383883, 33.383883), (-28, 31.354356))
        make_face()
        with Locations((30, -45)):
            Circle(SKIZZE2_2_R)
    extrude(amount=-SCHNITT_LINEAR_AUSTRAGEN1_DEPTH, mode=Mode.SUBTRACT)

    # Skizze4 → Schnitt-Linear austragen2 (cut)
    with BuildSketch(Plane(origin=(0, 0, 4), x_dir=(-1, 0, 0), z_dir=(0, 0, -1)).offset(SCHNITT_LINEAR_START)):
        with Locations(Location((27.5, 32.5, 0), (0, 0, 180))):
            Circle(SKIZZE4_R)
        with Locations(Location((27.5, -45, 0), (0, 0, 180))):
            Circle(SKIZZE4_R)
        with Locations(Location((-30, -45, 0), (0, 0, 180))):
            Circle(SKIZZE4_R)
        with Locations(Location((-30, 32.5, 0), (0, 0, 180))):
            Circle(SKIZZE4_R)
    extrude(amount=SCHNITT_LINEAR_AUSTRAGEN2_DEPTH, mode=Mode.SUBTRACT)

    # Skizze5 → Schnitt-Linear austragen3 (cut)
    with BuildSketch(Plane(origin=(0, 0, 0), x_dir=(-1, 0, 0), z_dir=(0, 0, -1))):
        with Locations((-1.25, -46.5)):
            Rectangle(SKIZZE5_W, SKIZZE5_H)
    extrude(amount=-SCHNITT_LINEAR_AUSTRAGEN3_DEPTH, mode=Mode.SUBTRACT)


solid = part.part
